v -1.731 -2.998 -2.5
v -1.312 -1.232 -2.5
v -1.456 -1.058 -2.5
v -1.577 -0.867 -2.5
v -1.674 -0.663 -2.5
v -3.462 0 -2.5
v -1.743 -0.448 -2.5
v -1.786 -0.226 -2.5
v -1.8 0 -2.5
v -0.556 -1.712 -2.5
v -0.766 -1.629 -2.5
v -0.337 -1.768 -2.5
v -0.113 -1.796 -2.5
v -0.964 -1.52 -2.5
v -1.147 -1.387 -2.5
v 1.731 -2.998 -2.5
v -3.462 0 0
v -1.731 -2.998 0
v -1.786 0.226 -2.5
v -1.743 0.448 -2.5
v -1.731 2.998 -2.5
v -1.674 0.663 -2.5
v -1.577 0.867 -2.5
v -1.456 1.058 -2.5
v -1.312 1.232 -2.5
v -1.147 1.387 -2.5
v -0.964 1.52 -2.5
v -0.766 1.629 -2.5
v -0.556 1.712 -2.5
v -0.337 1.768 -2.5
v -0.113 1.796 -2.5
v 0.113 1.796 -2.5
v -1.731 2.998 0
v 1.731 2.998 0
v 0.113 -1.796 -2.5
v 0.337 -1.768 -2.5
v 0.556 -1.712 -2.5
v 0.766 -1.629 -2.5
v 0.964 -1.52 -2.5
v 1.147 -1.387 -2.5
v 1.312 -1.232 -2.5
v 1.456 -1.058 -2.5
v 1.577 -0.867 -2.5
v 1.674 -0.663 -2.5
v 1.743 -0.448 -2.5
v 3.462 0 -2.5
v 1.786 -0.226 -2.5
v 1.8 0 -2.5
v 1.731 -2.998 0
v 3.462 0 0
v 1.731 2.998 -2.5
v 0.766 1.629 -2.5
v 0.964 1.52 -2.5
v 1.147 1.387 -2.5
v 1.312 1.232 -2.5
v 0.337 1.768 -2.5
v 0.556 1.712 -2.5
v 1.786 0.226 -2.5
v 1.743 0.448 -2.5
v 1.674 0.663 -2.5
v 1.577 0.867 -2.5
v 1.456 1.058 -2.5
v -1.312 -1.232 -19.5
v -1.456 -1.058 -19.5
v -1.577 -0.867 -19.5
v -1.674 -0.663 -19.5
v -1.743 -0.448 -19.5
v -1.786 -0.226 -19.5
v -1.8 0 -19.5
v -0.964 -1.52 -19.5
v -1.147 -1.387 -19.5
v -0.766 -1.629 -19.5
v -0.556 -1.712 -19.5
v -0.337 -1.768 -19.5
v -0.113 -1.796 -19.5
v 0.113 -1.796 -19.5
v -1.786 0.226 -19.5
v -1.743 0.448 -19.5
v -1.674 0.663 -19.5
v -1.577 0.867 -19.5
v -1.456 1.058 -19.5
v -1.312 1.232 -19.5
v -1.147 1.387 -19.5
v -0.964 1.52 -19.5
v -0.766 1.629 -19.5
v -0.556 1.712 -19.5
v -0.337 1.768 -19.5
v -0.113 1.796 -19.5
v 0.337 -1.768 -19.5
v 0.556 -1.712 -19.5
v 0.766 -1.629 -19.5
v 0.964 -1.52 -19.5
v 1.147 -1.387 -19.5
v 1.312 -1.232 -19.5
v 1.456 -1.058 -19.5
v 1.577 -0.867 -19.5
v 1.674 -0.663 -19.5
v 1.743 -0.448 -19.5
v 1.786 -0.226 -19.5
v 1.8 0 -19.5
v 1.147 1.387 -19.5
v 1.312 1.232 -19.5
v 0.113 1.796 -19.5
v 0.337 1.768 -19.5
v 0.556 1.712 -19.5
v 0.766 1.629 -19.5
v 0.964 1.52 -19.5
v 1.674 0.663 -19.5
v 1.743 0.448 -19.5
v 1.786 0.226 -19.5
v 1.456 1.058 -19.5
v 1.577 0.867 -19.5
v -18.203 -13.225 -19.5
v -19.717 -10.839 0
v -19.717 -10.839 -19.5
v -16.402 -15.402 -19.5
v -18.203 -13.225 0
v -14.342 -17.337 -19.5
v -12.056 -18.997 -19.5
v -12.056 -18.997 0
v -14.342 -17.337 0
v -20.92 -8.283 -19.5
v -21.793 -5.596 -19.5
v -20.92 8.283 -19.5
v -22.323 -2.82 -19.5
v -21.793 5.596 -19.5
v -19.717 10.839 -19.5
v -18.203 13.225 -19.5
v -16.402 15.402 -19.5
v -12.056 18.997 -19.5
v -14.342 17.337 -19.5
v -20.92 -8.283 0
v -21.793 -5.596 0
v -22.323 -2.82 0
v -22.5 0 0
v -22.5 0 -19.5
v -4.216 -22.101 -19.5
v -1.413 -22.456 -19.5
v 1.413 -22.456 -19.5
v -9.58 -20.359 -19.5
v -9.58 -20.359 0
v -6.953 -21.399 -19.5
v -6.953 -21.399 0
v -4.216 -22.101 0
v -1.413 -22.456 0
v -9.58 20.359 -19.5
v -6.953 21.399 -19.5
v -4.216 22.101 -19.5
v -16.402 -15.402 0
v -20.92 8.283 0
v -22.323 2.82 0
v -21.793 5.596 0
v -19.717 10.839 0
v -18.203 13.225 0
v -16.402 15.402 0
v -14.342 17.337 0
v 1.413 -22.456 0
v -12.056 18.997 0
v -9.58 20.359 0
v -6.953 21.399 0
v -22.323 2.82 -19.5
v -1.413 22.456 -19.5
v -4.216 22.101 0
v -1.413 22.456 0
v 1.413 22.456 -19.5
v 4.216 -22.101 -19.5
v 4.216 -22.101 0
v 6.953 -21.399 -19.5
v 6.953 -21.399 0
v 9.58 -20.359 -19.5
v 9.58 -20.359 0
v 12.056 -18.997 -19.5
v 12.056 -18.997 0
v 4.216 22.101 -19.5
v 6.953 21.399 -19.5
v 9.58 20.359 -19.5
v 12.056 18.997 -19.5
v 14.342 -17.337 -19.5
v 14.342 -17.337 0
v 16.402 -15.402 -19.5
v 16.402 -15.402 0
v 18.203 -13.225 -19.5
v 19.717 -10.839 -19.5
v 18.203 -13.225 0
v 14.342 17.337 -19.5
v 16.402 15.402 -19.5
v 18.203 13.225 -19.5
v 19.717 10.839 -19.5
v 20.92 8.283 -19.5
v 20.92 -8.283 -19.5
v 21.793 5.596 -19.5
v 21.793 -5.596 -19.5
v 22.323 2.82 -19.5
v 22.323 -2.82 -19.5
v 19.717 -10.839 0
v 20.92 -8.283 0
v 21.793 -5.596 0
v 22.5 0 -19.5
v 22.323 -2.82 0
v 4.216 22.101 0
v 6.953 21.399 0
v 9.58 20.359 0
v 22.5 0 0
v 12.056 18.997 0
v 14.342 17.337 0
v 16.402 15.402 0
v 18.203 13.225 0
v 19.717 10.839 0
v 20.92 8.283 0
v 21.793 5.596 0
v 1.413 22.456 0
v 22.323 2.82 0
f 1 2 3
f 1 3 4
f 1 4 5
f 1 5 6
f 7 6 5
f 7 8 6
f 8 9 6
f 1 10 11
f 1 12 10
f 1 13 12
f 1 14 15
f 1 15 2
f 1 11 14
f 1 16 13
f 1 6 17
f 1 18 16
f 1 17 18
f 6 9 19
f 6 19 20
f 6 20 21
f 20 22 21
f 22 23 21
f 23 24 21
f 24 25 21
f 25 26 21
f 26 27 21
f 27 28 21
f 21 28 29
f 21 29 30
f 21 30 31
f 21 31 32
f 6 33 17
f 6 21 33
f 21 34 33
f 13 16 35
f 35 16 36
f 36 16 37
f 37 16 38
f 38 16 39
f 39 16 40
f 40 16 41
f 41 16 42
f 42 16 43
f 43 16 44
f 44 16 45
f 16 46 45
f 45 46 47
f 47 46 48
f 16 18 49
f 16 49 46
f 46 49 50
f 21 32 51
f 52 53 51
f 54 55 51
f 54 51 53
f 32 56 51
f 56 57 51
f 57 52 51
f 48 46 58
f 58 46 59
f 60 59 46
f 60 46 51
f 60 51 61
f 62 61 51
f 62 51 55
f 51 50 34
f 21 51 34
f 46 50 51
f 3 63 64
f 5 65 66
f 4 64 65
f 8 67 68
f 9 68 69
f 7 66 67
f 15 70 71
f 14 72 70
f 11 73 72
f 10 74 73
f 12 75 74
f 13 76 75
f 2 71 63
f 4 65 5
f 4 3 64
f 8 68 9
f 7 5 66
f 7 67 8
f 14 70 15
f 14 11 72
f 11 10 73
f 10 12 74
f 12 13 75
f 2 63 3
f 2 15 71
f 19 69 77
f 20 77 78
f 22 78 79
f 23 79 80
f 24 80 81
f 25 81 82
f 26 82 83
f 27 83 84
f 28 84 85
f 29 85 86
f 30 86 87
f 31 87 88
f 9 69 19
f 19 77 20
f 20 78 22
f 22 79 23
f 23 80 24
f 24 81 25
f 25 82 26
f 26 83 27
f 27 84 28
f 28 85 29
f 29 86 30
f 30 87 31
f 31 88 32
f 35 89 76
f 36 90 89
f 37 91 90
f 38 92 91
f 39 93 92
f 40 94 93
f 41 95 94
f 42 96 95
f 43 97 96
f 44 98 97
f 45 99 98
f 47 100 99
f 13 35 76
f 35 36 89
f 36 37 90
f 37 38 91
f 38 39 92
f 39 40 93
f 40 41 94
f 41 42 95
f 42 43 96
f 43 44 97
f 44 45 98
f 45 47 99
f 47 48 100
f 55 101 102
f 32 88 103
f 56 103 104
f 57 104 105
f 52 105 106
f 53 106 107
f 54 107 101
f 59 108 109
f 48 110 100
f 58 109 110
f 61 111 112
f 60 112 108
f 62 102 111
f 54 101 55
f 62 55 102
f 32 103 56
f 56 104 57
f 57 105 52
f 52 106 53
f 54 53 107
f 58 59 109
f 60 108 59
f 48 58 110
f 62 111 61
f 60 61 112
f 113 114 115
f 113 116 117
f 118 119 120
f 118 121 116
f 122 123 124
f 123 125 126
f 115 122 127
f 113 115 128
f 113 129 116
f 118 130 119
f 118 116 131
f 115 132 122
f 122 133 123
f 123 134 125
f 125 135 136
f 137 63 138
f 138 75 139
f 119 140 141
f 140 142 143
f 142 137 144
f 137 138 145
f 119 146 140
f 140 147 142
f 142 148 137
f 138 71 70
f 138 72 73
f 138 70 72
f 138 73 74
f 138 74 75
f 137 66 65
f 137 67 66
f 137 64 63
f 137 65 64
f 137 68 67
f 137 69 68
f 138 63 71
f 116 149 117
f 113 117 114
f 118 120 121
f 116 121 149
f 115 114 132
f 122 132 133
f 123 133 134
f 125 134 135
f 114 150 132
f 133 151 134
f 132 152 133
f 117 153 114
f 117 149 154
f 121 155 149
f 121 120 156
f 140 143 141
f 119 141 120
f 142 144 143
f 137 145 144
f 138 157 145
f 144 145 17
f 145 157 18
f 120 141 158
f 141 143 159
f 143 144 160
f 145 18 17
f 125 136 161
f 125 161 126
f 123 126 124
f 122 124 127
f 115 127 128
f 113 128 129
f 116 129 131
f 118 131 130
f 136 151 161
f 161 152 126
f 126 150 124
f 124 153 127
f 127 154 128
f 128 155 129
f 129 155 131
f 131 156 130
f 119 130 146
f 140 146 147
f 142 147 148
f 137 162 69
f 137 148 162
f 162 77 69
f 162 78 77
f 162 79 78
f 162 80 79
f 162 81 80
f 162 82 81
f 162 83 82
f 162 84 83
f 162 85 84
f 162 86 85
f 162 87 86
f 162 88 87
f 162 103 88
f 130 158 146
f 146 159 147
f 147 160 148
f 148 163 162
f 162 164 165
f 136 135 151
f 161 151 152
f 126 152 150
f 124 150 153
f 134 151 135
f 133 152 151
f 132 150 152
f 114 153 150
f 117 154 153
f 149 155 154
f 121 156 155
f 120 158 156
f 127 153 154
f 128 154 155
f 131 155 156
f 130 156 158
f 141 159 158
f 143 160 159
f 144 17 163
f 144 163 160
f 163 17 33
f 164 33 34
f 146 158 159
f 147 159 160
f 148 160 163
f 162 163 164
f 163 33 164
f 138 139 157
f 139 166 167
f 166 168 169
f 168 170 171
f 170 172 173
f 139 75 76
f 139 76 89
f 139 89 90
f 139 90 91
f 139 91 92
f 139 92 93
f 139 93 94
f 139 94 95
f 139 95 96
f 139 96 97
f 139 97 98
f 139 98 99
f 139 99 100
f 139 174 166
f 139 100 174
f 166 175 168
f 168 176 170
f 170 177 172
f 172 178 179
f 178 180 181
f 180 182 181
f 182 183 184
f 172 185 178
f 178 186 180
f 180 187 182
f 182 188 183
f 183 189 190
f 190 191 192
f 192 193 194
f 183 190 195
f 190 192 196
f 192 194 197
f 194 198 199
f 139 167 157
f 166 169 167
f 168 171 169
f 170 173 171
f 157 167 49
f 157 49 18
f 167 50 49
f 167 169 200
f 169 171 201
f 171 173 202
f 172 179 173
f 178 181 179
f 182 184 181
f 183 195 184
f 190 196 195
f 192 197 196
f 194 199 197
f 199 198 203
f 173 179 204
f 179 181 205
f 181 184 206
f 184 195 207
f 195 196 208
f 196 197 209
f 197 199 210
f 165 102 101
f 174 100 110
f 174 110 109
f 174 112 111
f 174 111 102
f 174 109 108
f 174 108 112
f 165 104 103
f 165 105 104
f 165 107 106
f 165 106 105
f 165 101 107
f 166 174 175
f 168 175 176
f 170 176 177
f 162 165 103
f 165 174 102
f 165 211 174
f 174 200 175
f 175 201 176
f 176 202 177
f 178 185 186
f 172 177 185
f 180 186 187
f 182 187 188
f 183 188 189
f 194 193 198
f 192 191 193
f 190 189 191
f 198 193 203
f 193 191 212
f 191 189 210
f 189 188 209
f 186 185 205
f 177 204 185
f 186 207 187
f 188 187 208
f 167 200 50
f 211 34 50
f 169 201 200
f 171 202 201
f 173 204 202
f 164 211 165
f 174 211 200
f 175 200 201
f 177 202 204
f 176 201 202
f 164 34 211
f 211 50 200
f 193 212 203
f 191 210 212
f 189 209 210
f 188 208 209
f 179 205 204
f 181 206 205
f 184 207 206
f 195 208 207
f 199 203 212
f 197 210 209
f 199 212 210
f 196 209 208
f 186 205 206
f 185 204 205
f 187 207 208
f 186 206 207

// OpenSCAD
$fn = 50;

difference() {
	union() {
		translate(v = [0, 0, -19.5]) {
			cylinder(h = 19.5, r = 22.5);
		}
	}
	union() {
		translate(v = [0, 0, 0]) {
			rotate(a = [0, 0, 0]) {
				difference() {
					union() {
						translate(v = [0, 0, -2.5]) {
							linear_extrude(height = 2.5) {
								polygon(points = [[3.4619999999999997, 0.0], [1.7310000000000003, 2.9981799479017264], [-1.7309999999999992, 2.9981799479017264], [-3.4619999999999997, 4.2397272186481365e-16], [-1.7310000000000014, -2.998179947901726], [1.7309999999999977, -2.9981799479017277]]);
							}
						}
					}
					union();
				}
			}
		}
		#translate(v = [0, 0, -100.0]) {
			cylinder(h = 200, r = 1.8);
		}
	}
}
